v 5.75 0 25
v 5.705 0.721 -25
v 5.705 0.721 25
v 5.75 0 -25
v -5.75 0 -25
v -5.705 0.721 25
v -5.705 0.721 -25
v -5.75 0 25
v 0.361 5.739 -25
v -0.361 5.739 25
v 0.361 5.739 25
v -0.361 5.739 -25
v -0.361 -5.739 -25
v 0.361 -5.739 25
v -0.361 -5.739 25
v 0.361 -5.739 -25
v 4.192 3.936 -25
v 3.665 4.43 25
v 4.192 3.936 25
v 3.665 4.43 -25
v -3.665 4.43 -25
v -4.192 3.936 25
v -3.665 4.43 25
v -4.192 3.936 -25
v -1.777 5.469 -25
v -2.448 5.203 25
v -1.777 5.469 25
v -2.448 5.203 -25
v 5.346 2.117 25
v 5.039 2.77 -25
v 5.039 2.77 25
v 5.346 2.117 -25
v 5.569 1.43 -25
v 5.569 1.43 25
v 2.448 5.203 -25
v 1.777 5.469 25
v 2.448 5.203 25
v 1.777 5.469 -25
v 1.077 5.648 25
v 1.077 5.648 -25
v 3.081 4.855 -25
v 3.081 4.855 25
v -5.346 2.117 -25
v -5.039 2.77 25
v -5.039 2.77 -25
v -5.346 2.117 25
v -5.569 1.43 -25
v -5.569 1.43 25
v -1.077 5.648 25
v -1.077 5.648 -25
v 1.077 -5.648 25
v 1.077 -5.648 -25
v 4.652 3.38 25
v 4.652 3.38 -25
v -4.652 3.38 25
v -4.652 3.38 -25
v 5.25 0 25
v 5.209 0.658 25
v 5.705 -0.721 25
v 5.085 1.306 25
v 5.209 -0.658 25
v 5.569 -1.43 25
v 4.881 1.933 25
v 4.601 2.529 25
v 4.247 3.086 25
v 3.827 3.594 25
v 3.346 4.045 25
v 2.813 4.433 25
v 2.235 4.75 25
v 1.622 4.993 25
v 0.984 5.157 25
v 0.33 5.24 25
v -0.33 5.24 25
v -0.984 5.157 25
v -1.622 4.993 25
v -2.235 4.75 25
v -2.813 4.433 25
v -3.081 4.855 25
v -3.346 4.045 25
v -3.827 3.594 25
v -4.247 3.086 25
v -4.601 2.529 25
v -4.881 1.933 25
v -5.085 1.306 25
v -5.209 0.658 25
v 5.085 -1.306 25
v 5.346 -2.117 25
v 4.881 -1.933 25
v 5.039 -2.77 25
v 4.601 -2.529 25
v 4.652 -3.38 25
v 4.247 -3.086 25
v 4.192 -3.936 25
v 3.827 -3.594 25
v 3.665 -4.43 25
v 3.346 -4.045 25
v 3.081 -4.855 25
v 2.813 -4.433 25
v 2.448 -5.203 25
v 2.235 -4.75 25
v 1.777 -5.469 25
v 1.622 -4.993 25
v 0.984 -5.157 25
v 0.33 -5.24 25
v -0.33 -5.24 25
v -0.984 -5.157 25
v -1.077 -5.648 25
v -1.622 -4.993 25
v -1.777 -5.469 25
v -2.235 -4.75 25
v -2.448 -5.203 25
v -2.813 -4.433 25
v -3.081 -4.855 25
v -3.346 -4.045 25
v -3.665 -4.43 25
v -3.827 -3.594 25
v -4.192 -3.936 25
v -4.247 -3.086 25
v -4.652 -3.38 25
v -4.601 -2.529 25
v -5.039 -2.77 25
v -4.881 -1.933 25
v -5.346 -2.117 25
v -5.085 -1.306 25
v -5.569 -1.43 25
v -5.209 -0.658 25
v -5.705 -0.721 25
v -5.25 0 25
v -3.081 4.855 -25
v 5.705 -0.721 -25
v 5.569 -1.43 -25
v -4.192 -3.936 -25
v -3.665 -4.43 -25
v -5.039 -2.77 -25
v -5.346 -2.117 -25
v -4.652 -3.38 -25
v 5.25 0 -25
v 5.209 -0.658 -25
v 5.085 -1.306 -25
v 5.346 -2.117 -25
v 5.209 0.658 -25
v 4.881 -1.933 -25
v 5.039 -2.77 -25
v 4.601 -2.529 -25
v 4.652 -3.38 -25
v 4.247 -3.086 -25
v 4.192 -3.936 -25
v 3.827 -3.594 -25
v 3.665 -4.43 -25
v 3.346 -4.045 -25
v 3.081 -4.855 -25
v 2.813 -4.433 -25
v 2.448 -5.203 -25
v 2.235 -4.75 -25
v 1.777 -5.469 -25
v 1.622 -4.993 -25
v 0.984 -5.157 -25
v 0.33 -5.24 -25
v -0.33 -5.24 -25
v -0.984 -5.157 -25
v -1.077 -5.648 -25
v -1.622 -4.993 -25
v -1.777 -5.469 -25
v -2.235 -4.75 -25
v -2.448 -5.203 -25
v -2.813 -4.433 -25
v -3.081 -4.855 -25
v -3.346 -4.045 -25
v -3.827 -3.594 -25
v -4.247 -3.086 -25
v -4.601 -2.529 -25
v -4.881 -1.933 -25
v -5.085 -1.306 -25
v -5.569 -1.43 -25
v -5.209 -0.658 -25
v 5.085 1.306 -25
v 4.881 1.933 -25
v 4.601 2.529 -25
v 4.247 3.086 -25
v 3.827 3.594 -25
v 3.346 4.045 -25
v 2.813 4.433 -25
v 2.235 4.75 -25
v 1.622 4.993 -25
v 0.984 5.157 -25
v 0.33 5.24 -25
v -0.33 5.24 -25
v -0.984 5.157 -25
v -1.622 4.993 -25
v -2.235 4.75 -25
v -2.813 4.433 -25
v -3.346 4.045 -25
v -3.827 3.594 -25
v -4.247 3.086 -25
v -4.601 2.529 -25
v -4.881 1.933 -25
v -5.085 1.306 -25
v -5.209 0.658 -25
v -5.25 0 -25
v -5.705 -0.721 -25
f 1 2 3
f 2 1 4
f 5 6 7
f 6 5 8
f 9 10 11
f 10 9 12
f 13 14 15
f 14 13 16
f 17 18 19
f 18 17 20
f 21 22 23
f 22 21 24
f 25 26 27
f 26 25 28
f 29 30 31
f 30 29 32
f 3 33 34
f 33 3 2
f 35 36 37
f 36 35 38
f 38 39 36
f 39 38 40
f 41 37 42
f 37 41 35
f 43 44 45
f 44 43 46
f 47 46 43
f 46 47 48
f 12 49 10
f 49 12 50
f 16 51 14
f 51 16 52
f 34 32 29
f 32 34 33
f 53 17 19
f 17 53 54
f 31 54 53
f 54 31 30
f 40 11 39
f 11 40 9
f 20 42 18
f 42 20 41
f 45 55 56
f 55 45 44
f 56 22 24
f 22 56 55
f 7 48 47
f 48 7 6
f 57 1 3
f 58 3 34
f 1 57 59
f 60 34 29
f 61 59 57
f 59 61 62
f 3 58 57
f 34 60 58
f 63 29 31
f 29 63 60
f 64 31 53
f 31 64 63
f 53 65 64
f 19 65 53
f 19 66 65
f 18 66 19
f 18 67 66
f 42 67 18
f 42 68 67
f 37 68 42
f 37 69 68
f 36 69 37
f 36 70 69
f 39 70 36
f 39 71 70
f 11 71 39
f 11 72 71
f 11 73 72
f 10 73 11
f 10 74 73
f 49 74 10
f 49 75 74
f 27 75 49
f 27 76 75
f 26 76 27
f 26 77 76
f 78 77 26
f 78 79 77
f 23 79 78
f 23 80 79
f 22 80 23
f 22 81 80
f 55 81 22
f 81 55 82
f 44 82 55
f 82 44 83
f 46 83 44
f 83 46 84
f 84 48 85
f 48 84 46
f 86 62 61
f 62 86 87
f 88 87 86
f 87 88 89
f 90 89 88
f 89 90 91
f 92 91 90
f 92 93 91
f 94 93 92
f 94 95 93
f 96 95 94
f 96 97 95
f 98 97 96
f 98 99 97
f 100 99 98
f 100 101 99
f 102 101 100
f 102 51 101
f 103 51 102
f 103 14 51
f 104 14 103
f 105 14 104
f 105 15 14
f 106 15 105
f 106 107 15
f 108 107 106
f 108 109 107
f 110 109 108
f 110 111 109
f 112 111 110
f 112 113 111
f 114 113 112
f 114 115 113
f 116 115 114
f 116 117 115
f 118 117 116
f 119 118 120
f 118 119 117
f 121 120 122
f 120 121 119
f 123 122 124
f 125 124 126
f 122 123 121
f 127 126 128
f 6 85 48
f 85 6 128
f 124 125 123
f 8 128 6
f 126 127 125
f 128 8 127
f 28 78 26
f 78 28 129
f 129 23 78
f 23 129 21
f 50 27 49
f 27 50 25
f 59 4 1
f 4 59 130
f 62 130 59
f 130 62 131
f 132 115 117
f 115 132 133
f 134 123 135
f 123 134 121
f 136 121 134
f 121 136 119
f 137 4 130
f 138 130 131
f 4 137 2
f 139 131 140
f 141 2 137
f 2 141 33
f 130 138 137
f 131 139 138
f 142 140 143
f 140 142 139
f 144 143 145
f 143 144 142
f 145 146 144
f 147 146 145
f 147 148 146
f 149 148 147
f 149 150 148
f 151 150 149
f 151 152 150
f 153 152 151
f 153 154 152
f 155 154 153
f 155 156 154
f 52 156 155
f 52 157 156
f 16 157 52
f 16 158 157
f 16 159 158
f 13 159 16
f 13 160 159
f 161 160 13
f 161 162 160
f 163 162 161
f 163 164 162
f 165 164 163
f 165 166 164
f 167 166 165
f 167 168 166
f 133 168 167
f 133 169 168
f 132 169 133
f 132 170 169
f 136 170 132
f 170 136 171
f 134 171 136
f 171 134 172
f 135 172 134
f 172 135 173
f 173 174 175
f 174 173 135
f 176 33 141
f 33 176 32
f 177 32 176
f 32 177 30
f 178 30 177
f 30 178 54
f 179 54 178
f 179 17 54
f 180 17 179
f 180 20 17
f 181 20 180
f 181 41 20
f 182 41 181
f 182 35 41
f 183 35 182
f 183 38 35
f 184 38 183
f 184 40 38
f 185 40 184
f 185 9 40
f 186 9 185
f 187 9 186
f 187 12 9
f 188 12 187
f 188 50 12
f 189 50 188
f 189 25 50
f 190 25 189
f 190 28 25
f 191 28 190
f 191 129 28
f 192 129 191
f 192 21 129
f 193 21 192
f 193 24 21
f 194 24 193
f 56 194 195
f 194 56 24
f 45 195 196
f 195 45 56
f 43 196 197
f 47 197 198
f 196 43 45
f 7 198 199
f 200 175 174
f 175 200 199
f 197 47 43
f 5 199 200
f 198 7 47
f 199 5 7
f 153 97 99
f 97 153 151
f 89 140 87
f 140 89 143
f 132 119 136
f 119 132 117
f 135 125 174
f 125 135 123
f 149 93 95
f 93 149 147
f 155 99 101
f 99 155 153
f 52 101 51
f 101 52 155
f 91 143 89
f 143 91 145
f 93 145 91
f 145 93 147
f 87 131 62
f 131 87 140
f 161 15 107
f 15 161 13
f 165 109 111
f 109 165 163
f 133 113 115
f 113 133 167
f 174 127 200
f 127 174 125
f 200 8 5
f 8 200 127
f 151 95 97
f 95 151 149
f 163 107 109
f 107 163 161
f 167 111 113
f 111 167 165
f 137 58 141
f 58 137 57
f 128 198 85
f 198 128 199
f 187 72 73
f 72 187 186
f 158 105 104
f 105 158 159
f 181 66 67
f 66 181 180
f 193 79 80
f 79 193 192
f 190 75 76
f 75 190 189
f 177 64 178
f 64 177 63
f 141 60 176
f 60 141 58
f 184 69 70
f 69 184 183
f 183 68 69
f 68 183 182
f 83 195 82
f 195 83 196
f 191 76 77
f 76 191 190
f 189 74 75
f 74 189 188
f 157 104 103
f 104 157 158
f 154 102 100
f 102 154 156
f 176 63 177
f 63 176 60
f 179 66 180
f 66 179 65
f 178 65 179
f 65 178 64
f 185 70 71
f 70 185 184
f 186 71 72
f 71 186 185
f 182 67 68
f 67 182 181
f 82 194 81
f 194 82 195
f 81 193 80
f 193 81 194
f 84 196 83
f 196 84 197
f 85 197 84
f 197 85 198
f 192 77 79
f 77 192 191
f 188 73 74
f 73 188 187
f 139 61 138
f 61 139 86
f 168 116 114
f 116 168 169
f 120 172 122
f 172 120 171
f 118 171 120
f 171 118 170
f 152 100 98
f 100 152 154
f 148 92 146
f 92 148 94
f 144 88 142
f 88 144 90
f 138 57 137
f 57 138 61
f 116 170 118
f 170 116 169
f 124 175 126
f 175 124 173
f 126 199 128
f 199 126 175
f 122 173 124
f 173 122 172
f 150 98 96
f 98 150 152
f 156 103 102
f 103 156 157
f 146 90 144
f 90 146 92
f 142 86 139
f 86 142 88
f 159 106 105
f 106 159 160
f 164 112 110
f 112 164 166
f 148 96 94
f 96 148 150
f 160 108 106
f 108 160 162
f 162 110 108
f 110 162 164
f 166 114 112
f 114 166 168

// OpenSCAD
$fn = 50;


difference() {
	union() {
		translate(v = [0, 0, -25.0000000000]) {
			cylinder(h = 50, r = 5.7500000000);
		}
	}
	union() {
		translate(v = [0, 0, -100.0000000000]) {
			cylinder(h = 200, r = 5.2500000000);
		}
	}
}
